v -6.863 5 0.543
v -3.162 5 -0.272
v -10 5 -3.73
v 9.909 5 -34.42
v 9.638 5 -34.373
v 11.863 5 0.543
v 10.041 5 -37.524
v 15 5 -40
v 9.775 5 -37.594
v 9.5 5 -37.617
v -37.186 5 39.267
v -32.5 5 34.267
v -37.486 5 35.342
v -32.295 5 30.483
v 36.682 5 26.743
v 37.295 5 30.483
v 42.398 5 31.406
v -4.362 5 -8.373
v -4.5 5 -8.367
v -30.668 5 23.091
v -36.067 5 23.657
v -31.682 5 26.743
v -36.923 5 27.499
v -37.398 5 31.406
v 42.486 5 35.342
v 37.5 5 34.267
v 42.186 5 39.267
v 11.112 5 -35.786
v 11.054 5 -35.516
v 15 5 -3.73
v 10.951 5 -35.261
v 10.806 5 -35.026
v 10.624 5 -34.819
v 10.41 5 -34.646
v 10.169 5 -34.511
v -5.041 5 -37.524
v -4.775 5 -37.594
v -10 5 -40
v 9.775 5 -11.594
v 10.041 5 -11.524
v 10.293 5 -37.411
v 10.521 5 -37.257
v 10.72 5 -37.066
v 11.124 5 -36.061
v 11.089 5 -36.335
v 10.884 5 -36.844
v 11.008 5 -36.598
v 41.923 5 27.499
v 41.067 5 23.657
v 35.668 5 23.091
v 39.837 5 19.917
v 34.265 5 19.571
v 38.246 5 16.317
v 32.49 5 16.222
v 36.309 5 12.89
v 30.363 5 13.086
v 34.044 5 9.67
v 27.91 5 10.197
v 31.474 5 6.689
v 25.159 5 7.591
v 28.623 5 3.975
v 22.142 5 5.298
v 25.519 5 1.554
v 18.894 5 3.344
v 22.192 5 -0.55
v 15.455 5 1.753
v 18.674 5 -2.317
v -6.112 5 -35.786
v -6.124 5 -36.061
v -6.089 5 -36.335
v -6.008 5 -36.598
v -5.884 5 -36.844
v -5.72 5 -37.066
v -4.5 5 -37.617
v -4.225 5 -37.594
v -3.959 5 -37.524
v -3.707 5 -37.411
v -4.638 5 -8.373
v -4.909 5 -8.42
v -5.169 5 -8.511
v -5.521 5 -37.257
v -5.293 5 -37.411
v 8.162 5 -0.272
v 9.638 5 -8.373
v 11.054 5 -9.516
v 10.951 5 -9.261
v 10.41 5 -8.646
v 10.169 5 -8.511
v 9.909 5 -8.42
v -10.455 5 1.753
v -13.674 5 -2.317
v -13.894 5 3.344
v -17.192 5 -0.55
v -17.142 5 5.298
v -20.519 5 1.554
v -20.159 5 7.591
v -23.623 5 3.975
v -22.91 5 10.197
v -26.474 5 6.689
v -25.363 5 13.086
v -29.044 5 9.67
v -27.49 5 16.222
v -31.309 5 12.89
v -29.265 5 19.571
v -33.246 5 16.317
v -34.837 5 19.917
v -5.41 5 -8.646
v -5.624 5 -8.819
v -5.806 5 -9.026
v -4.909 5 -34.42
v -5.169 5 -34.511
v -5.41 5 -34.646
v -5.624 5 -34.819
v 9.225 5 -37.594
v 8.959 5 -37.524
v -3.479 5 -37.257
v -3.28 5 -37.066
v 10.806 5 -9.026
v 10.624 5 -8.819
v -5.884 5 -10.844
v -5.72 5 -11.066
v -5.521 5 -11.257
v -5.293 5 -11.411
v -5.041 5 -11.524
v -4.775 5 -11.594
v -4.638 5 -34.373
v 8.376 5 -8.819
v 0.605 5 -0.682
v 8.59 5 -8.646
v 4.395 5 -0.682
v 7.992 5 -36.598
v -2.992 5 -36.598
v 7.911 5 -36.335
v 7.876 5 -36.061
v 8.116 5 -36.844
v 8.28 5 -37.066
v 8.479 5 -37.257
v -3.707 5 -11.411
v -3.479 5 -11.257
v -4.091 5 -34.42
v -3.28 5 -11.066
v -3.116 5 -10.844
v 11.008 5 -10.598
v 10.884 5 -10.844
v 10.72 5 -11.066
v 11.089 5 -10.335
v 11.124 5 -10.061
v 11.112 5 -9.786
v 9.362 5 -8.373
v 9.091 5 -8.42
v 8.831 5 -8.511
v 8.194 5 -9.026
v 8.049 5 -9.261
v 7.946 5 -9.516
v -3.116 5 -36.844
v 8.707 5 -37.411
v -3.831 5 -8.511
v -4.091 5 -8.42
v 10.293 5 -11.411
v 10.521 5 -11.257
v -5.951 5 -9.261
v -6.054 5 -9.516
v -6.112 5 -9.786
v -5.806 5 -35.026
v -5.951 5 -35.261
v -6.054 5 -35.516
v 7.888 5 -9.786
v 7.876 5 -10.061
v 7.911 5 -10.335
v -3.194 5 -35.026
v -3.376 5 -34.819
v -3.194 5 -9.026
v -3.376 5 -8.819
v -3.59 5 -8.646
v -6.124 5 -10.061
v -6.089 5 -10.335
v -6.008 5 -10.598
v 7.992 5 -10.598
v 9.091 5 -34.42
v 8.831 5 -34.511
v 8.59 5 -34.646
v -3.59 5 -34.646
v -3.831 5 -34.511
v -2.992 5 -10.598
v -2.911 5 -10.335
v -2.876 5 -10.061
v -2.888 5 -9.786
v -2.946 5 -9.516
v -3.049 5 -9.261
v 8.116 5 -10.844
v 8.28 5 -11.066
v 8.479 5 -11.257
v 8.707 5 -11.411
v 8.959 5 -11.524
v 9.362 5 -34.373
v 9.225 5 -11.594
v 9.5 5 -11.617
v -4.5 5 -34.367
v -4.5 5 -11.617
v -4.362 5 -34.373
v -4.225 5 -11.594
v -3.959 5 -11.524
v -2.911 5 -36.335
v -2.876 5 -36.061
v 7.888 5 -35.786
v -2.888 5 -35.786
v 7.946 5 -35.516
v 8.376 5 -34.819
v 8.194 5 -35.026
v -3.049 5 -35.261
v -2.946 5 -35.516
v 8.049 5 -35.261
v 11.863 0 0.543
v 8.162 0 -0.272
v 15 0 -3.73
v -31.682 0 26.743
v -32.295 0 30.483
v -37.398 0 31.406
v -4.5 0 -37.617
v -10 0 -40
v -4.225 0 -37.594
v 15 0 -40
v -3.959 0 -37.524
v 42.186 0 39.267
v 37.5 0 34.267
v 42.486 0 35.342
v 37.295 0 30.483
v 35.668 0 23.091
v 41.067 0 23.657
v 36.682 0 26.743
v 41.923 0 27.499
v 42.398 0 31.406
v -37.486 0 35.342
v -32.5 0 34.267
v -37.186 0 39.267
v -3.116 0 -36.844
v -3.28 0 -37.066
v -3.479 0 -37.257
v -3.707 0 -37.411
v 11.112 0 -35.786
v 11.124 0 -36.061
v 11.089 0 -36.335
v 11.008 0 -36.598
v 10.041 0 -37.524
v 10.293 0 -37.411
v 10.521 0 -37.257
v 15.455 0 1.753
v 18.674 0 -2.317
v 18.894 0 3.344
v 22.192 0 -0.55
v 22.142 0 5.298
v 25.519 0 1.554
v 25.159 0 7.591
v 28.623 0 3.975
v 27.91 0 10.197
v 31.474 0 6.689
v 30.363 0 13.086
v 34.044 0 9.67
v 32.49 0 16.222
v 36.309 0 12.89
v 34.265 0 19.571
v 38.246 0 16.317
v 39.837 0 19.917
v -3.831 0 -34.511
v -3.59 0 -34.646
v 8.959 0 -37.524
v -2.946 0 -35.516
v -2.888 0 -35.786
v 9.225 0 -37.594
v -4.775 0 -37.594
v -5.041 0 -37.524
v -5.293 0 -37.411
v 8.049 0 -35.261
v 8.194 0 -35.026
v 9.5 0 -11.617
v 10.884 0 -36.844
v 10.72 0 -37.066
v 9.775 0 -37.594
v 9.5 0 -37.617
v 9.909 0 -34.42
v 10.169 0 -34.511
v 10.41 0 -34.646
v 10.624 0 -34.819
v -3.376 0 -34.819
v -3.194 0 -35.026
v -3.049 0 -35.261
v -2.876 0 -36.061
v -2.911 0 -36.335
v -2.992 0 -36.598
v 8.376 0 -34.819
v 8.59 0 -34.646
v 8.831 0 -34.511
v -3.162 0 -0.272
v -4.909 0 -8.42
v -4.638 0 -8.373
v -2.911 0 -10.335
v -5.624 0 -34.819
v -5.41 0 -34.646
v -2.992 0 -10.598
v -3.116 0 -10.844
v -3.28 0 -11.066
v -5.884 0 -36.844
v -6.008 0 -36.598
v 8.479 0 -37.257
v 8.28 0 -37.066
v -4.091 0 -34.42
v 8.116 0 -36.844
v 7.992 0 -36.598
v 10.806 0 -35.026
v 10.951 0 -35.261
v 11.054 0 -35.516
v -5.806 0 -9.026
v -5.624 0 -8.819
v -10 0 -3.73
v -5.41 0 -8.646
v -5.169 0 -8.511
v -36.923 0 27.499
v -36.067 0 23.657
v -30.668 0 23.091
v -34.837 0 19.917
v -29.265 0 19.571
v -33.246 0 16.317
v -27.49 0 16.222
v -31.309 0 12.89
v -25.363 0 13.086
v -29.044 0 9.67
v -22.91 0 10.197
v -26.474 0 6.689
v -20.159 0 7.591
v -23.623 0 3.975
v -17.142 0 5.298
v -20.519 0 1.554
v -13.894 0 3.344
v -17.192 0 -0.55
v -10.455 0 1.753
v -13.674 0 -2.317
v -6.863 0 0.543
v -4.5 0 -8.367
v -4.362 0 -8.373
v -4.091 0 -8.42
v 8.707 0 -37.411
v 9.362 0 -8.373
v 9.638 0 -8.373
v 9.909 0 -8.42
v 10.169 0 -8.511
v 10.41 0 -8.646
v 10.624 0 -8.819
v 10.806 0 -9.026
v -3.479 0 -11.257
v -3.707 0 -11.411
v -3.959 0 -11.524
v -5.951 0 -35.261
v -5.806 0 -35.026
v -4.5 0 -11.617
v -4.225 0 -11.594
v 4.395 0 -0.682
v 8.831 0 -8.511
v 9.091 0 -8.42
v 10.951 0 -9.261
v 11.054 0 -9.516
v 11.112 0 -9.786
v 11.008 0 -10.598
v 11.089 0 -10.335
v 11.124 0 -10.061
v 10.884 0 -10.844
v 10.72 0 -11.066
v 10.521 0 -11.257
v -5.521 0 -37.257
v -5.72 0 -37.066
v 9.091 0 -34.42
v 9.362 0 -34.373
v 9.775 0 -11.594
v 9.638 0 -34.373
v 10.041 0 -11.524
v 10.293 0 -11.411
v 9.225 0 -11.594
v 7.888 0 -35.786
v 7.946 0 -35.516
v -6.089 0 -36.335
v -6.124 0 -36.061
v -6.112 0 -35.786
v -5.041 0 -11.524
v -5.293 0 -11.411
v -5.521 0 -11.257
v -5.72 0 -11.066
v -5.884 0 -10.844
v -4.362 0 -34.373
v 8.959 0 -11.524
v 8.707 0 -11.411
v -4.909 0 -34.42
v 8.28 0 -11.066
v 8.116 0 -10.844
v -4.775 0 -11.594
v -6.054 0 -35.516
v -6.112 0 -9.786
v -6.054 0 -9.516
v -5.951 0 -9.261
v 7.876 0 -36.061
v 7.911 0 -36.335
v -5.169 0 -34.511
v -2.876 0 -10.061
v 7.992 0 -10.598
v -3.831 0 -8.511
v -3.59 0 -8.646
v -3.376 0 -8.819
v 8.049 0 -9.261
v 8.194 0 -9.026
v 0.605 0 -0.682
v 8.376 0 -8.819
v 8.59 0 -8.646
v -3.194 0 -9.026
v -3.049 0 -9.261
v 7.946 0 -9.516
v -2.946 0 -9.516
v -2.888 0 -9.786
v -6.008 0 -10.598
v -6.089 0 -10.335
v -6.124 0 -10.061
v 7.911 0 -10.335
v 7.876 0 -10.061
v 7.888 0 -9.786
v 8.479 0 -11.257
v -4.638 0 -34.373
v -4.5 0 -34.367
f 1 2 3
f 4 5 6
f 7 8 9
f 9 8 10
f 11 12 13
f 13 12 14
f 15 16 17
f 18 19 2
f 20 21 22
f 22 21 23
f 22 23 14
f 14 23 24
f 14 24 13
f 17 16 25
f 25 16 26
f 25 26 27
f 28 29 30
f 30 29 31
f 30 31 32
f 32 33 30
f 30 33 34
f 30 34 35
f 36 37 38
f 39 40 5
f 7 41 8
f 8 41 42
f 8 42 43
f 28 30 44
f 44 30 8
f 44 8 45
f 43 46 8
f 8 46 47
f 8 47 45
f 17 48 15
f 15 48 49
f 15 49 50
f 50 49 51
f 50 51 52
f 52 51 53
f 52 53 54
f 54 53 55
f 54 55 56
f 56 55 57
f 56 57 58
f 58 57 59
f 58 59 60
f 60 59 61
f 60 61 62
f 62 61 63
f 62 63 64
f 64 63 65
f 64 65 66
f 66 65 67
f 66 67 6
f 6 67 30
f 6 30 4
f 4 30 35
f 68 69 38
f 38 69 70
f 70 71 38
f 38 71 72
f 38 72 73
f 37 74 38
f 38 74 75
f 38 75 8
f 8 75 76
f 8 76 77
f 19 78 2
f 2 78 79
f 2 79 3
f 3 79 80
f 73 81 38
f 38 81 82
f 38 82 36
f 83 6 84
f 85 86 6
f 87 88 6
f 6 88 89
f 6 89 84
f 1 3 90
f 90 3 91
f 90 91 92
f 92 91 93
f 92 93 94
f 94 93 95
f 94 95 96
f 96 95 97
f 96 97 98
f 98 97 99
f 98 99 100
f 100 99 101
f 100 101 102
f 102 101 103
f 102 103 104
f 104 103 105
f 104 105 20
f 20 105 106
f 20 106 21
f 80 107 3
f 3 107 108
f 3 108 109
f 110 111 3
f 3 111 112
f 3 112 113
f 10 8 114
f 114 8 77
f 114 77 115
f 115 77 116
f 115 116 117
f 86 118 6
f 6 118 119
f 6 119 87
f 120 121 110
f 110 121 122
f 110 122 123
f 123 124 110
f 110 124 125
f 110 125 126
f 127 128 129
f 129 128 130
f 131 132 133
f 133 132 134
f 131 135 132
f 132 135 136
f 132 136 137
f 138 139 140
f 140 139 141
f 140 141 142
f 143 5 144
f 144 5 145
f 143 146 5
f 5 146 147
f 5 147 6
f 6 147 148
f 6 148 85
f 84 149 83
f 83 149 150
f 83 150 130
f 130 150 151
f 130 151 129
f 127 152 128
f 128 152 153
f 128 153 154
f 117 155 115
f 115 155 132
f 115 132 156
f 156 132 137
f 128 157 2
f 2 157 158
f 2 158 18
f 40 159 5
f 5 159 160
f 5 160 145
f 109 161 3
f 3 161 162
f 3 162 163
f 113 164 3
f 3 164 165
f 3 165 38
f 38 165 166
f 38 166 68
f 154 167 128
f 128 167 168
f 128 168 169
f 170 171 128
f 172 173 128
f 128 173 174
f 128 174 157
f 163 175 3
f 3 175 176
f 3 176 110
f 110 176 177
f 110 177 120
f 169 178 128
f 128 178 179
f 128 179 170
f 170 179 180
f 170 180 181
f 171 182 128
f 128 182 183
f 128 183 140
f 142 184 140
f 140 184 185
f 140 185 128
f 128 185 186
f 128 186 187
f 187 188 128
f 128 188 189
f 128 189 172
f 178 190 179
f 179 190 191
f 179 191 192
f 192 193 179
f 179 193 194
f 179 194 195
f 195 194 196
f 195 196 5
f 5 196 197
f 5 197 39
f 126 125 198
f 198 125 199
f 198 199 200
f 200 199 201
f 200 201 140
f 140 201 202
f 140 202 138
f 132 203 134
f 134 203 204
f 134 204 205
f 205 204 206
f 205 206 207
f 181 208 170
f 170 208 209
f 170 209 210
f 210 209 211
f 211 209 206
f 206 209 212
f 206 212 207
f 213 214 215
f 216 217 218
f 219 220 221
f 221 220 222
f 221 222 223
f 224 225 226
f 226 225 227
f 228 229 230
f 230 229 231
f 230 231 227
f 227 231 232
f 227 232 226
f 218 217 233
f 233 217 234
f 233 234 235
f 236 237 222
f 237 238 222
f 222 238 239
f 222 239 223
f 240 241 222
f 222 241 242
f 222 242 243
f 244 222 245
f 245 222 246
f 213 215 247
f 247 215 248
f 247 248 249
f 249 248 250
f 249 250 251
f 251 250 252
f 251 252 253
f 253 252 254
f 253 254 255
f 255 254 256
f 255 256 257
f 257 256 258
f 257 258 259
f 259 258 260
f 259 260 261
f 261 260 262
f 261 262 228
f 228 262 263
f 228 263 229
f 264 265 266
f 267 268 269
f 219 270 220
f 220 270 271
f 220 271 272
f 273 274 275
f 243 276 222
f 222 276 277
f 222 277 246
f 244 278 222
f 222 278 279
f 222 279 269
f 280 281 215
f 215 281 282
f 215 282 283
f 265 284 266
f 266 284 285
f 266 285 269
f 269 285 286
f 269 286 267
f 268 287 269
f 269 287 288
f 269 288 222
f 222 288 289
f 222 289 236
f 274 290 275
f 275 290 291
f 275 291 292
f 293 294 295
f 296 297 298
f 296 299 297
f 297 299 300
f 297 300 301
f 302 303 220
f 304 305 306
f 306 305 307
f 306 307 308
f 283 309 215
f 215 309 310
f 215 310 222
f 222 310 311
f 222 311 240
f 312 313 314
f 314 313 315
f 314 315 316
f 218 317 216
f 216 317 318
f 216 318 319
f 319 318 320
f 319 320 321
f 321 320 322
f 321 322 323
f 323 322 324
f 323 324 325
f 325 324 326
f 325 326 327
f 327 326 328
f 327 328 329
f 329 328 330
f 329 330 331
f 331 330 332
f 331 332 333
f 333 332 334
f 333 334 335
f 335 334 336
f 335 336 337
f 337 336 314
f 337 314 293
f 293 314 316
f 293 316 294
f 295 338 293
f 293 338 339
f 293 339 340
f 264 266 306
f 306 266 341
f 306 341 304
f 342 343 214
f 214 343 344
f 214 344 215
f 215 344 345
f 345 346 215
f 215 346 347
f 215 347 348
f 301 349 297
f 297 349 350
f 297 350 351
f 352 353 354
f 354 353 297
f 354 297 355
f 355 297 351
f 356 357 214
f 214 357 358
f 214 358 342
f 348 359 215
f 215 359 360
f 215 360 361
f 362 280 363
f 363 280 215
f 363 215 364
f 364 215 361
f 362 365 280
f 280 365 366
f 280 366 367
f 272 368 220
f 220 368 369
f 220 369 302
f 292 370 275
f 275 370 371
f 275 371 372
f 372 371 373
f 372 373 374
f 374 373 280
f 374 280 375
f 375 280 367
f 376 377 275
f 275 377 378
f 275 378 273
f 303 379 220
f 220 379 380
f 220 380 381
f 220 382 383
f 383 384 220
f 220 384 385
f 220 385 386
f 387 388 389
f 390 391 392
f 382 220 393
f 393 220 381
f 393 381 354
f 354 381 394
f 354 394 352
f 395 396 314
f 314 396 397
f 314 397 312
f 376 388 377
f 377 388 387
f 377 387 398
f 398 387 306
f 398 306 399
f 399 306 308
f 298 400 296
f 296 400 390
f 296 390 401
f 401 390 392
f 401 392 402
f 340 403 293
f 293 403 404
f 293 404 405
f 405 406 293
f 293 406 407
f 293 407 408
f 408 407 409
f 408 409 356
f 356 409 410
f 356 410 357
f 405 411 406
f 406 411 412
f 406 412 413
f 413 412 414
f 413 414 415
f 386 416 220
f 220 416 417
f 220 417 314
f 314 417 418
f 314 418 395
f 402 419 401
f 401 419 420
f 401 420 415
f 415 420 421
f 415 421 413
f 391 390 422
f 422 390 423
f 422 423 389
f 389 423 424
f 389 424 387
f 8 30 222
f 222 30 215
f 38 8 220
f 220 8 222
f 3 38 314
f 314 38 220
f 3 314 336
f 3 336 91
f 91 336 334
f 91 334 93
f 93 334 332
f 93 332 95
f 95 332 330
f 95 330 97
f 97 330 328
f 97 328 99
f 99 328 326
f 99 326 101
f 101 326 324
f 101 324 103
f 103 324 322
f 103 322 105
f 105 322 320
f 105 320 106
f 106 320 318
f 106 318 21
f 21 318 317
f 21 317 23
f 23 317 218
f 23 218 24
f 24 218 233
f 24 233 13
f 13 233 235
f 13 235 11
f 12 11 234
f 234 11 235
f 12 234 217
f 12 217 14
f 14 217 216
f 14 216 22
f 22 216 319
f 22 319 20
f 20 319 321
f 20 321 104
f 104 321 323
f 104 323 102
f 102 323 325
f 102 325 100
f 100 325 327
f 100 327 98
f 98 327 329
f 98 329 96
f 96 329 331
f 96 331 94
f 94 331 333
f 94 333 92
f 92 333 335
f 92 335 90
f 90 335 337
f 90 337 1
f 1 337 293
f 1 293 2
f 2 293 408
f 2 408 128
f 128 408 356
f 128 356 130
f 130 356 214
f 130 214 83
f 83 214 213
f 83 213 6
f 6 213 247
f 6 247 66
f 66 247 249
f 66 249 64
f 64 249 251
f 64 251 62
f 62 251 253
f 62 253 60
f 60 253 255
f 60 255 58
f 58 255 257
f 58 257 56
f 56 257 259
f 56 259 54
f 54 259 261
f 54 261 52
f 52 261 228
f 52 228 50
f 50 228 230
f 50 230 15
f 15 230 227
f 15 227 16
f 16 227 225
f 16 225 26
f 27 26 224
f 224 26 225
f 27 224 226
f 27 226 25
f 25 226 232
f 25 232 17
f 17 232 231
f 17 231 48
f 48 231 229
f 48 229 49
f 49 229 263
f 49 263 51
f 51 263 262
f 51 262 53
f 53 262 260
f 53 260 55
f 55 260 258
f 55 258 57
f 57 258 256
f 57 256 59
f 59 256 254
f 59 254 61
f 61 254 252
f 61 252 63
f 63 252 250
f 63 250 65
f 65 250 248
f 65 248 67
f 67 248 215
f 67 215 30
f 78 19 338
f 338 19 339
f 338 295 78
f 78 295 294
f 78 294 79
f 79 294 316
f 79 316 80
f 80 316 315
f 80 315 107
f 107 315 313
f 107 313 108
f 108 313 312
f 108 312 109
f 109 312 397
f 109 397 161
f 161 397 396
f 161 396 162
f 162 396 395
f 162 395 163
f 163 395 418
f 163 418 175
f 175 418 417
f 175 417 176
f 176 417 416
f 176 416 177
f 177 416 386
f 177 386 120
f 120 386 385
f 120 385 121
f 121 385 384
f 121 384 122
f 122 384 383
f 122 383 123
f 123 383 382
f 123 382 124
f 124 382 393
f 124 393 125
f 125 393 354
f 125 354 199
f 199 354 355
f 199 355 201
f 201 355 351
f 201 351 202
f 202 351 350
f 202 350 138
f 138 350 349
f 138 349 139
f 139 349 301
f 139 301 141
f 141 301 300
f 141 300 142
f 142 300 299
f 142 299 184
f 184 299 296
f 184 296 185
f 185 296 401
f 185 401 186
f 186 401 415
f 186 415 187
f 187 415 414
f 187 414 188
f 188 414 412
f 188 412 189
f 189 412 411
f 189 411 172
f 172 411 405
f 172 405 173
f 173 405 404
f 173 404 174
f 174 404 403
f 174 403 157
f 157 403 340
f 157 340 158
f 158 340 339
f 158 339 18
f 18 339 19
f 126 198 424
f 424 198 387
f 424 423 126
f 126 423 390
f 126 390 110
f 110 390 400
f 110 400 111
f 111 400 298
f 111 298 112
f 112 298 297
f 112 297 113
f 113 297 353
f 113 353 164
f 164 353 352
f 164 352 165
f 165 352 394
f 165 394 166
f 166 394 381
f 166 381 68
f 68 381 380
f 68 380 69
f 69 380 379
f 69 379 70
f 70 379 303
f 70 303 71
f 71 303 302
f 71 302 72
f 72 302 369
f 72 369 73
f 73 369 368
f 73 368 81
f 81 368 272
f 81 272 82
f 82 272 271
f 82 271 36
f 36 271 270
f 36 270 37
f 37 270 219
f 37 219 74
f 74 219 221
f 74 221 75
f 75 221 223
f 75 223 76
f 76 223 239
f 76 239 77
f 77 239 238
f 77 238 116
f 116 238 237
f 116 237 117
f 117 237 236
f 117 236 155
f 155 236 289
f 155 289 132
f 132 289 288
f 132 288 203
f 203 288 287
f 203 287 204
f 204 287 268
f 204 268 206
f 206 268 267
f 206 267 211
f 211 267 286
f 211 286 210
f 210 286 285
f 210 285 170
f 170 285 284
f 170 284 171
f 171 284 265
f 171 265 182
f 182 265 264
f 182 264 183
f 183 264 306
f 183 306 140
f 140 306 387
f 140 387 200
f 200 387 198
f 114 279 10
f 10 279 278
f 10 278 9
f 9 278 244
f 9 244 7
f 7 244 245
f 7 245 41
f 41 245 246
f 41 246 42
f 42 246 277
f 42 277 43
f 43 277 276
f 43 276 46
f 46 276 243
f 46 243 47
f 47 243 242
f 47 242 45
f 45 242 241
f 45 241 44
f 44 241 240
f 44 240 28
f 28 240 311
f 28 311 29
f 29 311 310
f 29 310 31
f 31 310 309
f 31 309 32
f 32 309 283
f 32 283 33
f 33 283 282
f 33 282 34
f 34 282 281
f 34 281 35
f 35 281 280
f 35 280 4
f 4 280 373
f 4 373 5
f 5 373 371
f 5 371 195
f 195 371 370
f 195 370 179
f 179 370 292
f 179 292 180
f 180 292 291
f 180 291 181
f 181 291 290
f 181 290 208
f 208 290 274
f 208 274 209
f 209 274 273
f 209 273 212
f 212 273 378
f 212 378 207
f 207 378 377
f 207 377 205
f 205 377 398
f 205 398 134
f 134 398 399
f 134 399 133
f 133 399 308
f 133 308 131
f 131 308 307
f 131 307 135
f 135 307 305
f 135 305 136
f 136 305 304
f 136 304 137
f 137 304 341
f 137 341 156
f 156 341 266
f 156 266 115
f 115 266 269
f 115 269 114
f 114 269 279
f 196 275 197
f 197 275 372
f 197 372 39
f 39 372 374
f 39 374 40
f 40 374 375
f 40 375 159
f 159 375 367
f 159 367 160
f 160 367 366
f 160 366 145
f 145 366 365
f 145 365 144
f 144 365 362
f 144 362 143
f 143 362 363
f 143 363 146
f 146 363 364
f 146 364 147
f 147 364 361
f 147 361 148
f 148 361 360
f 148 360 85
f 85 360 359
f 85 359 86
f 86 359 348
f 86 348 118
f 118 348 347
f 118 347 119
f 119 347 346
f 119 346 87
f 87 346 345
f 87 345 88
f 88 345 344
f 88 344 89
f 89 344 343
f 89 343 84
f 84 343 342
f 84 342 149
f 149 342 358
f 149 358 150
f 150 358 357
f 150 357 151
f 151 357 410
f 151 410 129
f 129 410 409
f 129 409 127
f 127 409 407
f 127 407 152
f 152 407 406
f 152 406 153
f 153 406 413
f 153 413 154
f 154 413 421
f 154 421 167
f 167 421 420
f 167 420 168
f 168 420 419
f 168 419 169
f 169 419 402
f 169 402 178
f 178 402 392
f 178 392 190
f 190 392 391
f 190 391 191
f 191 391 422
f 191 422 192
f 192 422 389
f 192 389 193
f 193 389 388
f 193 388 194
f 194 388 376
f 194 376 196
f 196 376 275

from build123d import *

# Parameters (mm, degrees)
SKETCH1_R           = 1.625
BOSS_EXTRUDE1_DEPTH = 5


with BuildPart() as part:
    # Sketch1 → Boss-Extrude1 (new body)
    with BuildSketch(Plane(origin=(0, 0, 0), x_dir=(1, 0, 0), z_dir=(0, 1, 0))):
        with BuildLine():
            Line((15, 40), (-10, 40))
            Line((-10, 40), (-10, 3.729833462))
            ThreePointArc((-10, 3.729833462), (-31.308740902, -12.890042764), (-37.186269666, -39.266876922))
            Line((-37.186269666, -39.266876922), (-32.5, -34.266876922))
            ThreePointArc((-32.5, -34.266876922), (2.5, 0.733123078), (37.5, -34.266876922))
            Line((37.5, -34.266876922), (42.186269666, -39.266876922))
            ThreePointArc((42.186269666, -39.266876922), (36.308740902, -12.890042764), (15, 3.729833462))
            Line((15, 3.729833462), (15, 40))
        make_face()
        with Locations(Location((-4.5, 9.992204686, 0), (0, 0, 270))):
            Circle(SKETCH1_R, mode=Mode.SUBTRACT)
        with Locations(Location((-4.5, 35.992204686, 0), (0, 0, 270))):
            Circle(SKETCH1_R, mode=Mode.SUBTRACT)
        with Locations(Location((9.5, 35.992204686, 0), (0, 0, 90))):
            Circle(SKETCH1_R, mode=Mode.SUBTRACT)
        with Locations(Location((9.5, 9.992204686, 0), (0, 0, 90))):
            Circle(SKETCH1_R, mode=Mode.SUBTRACT)
    extrude(amount=BOSS_EXTRUDE1_DEPTH)


solid = part.part
